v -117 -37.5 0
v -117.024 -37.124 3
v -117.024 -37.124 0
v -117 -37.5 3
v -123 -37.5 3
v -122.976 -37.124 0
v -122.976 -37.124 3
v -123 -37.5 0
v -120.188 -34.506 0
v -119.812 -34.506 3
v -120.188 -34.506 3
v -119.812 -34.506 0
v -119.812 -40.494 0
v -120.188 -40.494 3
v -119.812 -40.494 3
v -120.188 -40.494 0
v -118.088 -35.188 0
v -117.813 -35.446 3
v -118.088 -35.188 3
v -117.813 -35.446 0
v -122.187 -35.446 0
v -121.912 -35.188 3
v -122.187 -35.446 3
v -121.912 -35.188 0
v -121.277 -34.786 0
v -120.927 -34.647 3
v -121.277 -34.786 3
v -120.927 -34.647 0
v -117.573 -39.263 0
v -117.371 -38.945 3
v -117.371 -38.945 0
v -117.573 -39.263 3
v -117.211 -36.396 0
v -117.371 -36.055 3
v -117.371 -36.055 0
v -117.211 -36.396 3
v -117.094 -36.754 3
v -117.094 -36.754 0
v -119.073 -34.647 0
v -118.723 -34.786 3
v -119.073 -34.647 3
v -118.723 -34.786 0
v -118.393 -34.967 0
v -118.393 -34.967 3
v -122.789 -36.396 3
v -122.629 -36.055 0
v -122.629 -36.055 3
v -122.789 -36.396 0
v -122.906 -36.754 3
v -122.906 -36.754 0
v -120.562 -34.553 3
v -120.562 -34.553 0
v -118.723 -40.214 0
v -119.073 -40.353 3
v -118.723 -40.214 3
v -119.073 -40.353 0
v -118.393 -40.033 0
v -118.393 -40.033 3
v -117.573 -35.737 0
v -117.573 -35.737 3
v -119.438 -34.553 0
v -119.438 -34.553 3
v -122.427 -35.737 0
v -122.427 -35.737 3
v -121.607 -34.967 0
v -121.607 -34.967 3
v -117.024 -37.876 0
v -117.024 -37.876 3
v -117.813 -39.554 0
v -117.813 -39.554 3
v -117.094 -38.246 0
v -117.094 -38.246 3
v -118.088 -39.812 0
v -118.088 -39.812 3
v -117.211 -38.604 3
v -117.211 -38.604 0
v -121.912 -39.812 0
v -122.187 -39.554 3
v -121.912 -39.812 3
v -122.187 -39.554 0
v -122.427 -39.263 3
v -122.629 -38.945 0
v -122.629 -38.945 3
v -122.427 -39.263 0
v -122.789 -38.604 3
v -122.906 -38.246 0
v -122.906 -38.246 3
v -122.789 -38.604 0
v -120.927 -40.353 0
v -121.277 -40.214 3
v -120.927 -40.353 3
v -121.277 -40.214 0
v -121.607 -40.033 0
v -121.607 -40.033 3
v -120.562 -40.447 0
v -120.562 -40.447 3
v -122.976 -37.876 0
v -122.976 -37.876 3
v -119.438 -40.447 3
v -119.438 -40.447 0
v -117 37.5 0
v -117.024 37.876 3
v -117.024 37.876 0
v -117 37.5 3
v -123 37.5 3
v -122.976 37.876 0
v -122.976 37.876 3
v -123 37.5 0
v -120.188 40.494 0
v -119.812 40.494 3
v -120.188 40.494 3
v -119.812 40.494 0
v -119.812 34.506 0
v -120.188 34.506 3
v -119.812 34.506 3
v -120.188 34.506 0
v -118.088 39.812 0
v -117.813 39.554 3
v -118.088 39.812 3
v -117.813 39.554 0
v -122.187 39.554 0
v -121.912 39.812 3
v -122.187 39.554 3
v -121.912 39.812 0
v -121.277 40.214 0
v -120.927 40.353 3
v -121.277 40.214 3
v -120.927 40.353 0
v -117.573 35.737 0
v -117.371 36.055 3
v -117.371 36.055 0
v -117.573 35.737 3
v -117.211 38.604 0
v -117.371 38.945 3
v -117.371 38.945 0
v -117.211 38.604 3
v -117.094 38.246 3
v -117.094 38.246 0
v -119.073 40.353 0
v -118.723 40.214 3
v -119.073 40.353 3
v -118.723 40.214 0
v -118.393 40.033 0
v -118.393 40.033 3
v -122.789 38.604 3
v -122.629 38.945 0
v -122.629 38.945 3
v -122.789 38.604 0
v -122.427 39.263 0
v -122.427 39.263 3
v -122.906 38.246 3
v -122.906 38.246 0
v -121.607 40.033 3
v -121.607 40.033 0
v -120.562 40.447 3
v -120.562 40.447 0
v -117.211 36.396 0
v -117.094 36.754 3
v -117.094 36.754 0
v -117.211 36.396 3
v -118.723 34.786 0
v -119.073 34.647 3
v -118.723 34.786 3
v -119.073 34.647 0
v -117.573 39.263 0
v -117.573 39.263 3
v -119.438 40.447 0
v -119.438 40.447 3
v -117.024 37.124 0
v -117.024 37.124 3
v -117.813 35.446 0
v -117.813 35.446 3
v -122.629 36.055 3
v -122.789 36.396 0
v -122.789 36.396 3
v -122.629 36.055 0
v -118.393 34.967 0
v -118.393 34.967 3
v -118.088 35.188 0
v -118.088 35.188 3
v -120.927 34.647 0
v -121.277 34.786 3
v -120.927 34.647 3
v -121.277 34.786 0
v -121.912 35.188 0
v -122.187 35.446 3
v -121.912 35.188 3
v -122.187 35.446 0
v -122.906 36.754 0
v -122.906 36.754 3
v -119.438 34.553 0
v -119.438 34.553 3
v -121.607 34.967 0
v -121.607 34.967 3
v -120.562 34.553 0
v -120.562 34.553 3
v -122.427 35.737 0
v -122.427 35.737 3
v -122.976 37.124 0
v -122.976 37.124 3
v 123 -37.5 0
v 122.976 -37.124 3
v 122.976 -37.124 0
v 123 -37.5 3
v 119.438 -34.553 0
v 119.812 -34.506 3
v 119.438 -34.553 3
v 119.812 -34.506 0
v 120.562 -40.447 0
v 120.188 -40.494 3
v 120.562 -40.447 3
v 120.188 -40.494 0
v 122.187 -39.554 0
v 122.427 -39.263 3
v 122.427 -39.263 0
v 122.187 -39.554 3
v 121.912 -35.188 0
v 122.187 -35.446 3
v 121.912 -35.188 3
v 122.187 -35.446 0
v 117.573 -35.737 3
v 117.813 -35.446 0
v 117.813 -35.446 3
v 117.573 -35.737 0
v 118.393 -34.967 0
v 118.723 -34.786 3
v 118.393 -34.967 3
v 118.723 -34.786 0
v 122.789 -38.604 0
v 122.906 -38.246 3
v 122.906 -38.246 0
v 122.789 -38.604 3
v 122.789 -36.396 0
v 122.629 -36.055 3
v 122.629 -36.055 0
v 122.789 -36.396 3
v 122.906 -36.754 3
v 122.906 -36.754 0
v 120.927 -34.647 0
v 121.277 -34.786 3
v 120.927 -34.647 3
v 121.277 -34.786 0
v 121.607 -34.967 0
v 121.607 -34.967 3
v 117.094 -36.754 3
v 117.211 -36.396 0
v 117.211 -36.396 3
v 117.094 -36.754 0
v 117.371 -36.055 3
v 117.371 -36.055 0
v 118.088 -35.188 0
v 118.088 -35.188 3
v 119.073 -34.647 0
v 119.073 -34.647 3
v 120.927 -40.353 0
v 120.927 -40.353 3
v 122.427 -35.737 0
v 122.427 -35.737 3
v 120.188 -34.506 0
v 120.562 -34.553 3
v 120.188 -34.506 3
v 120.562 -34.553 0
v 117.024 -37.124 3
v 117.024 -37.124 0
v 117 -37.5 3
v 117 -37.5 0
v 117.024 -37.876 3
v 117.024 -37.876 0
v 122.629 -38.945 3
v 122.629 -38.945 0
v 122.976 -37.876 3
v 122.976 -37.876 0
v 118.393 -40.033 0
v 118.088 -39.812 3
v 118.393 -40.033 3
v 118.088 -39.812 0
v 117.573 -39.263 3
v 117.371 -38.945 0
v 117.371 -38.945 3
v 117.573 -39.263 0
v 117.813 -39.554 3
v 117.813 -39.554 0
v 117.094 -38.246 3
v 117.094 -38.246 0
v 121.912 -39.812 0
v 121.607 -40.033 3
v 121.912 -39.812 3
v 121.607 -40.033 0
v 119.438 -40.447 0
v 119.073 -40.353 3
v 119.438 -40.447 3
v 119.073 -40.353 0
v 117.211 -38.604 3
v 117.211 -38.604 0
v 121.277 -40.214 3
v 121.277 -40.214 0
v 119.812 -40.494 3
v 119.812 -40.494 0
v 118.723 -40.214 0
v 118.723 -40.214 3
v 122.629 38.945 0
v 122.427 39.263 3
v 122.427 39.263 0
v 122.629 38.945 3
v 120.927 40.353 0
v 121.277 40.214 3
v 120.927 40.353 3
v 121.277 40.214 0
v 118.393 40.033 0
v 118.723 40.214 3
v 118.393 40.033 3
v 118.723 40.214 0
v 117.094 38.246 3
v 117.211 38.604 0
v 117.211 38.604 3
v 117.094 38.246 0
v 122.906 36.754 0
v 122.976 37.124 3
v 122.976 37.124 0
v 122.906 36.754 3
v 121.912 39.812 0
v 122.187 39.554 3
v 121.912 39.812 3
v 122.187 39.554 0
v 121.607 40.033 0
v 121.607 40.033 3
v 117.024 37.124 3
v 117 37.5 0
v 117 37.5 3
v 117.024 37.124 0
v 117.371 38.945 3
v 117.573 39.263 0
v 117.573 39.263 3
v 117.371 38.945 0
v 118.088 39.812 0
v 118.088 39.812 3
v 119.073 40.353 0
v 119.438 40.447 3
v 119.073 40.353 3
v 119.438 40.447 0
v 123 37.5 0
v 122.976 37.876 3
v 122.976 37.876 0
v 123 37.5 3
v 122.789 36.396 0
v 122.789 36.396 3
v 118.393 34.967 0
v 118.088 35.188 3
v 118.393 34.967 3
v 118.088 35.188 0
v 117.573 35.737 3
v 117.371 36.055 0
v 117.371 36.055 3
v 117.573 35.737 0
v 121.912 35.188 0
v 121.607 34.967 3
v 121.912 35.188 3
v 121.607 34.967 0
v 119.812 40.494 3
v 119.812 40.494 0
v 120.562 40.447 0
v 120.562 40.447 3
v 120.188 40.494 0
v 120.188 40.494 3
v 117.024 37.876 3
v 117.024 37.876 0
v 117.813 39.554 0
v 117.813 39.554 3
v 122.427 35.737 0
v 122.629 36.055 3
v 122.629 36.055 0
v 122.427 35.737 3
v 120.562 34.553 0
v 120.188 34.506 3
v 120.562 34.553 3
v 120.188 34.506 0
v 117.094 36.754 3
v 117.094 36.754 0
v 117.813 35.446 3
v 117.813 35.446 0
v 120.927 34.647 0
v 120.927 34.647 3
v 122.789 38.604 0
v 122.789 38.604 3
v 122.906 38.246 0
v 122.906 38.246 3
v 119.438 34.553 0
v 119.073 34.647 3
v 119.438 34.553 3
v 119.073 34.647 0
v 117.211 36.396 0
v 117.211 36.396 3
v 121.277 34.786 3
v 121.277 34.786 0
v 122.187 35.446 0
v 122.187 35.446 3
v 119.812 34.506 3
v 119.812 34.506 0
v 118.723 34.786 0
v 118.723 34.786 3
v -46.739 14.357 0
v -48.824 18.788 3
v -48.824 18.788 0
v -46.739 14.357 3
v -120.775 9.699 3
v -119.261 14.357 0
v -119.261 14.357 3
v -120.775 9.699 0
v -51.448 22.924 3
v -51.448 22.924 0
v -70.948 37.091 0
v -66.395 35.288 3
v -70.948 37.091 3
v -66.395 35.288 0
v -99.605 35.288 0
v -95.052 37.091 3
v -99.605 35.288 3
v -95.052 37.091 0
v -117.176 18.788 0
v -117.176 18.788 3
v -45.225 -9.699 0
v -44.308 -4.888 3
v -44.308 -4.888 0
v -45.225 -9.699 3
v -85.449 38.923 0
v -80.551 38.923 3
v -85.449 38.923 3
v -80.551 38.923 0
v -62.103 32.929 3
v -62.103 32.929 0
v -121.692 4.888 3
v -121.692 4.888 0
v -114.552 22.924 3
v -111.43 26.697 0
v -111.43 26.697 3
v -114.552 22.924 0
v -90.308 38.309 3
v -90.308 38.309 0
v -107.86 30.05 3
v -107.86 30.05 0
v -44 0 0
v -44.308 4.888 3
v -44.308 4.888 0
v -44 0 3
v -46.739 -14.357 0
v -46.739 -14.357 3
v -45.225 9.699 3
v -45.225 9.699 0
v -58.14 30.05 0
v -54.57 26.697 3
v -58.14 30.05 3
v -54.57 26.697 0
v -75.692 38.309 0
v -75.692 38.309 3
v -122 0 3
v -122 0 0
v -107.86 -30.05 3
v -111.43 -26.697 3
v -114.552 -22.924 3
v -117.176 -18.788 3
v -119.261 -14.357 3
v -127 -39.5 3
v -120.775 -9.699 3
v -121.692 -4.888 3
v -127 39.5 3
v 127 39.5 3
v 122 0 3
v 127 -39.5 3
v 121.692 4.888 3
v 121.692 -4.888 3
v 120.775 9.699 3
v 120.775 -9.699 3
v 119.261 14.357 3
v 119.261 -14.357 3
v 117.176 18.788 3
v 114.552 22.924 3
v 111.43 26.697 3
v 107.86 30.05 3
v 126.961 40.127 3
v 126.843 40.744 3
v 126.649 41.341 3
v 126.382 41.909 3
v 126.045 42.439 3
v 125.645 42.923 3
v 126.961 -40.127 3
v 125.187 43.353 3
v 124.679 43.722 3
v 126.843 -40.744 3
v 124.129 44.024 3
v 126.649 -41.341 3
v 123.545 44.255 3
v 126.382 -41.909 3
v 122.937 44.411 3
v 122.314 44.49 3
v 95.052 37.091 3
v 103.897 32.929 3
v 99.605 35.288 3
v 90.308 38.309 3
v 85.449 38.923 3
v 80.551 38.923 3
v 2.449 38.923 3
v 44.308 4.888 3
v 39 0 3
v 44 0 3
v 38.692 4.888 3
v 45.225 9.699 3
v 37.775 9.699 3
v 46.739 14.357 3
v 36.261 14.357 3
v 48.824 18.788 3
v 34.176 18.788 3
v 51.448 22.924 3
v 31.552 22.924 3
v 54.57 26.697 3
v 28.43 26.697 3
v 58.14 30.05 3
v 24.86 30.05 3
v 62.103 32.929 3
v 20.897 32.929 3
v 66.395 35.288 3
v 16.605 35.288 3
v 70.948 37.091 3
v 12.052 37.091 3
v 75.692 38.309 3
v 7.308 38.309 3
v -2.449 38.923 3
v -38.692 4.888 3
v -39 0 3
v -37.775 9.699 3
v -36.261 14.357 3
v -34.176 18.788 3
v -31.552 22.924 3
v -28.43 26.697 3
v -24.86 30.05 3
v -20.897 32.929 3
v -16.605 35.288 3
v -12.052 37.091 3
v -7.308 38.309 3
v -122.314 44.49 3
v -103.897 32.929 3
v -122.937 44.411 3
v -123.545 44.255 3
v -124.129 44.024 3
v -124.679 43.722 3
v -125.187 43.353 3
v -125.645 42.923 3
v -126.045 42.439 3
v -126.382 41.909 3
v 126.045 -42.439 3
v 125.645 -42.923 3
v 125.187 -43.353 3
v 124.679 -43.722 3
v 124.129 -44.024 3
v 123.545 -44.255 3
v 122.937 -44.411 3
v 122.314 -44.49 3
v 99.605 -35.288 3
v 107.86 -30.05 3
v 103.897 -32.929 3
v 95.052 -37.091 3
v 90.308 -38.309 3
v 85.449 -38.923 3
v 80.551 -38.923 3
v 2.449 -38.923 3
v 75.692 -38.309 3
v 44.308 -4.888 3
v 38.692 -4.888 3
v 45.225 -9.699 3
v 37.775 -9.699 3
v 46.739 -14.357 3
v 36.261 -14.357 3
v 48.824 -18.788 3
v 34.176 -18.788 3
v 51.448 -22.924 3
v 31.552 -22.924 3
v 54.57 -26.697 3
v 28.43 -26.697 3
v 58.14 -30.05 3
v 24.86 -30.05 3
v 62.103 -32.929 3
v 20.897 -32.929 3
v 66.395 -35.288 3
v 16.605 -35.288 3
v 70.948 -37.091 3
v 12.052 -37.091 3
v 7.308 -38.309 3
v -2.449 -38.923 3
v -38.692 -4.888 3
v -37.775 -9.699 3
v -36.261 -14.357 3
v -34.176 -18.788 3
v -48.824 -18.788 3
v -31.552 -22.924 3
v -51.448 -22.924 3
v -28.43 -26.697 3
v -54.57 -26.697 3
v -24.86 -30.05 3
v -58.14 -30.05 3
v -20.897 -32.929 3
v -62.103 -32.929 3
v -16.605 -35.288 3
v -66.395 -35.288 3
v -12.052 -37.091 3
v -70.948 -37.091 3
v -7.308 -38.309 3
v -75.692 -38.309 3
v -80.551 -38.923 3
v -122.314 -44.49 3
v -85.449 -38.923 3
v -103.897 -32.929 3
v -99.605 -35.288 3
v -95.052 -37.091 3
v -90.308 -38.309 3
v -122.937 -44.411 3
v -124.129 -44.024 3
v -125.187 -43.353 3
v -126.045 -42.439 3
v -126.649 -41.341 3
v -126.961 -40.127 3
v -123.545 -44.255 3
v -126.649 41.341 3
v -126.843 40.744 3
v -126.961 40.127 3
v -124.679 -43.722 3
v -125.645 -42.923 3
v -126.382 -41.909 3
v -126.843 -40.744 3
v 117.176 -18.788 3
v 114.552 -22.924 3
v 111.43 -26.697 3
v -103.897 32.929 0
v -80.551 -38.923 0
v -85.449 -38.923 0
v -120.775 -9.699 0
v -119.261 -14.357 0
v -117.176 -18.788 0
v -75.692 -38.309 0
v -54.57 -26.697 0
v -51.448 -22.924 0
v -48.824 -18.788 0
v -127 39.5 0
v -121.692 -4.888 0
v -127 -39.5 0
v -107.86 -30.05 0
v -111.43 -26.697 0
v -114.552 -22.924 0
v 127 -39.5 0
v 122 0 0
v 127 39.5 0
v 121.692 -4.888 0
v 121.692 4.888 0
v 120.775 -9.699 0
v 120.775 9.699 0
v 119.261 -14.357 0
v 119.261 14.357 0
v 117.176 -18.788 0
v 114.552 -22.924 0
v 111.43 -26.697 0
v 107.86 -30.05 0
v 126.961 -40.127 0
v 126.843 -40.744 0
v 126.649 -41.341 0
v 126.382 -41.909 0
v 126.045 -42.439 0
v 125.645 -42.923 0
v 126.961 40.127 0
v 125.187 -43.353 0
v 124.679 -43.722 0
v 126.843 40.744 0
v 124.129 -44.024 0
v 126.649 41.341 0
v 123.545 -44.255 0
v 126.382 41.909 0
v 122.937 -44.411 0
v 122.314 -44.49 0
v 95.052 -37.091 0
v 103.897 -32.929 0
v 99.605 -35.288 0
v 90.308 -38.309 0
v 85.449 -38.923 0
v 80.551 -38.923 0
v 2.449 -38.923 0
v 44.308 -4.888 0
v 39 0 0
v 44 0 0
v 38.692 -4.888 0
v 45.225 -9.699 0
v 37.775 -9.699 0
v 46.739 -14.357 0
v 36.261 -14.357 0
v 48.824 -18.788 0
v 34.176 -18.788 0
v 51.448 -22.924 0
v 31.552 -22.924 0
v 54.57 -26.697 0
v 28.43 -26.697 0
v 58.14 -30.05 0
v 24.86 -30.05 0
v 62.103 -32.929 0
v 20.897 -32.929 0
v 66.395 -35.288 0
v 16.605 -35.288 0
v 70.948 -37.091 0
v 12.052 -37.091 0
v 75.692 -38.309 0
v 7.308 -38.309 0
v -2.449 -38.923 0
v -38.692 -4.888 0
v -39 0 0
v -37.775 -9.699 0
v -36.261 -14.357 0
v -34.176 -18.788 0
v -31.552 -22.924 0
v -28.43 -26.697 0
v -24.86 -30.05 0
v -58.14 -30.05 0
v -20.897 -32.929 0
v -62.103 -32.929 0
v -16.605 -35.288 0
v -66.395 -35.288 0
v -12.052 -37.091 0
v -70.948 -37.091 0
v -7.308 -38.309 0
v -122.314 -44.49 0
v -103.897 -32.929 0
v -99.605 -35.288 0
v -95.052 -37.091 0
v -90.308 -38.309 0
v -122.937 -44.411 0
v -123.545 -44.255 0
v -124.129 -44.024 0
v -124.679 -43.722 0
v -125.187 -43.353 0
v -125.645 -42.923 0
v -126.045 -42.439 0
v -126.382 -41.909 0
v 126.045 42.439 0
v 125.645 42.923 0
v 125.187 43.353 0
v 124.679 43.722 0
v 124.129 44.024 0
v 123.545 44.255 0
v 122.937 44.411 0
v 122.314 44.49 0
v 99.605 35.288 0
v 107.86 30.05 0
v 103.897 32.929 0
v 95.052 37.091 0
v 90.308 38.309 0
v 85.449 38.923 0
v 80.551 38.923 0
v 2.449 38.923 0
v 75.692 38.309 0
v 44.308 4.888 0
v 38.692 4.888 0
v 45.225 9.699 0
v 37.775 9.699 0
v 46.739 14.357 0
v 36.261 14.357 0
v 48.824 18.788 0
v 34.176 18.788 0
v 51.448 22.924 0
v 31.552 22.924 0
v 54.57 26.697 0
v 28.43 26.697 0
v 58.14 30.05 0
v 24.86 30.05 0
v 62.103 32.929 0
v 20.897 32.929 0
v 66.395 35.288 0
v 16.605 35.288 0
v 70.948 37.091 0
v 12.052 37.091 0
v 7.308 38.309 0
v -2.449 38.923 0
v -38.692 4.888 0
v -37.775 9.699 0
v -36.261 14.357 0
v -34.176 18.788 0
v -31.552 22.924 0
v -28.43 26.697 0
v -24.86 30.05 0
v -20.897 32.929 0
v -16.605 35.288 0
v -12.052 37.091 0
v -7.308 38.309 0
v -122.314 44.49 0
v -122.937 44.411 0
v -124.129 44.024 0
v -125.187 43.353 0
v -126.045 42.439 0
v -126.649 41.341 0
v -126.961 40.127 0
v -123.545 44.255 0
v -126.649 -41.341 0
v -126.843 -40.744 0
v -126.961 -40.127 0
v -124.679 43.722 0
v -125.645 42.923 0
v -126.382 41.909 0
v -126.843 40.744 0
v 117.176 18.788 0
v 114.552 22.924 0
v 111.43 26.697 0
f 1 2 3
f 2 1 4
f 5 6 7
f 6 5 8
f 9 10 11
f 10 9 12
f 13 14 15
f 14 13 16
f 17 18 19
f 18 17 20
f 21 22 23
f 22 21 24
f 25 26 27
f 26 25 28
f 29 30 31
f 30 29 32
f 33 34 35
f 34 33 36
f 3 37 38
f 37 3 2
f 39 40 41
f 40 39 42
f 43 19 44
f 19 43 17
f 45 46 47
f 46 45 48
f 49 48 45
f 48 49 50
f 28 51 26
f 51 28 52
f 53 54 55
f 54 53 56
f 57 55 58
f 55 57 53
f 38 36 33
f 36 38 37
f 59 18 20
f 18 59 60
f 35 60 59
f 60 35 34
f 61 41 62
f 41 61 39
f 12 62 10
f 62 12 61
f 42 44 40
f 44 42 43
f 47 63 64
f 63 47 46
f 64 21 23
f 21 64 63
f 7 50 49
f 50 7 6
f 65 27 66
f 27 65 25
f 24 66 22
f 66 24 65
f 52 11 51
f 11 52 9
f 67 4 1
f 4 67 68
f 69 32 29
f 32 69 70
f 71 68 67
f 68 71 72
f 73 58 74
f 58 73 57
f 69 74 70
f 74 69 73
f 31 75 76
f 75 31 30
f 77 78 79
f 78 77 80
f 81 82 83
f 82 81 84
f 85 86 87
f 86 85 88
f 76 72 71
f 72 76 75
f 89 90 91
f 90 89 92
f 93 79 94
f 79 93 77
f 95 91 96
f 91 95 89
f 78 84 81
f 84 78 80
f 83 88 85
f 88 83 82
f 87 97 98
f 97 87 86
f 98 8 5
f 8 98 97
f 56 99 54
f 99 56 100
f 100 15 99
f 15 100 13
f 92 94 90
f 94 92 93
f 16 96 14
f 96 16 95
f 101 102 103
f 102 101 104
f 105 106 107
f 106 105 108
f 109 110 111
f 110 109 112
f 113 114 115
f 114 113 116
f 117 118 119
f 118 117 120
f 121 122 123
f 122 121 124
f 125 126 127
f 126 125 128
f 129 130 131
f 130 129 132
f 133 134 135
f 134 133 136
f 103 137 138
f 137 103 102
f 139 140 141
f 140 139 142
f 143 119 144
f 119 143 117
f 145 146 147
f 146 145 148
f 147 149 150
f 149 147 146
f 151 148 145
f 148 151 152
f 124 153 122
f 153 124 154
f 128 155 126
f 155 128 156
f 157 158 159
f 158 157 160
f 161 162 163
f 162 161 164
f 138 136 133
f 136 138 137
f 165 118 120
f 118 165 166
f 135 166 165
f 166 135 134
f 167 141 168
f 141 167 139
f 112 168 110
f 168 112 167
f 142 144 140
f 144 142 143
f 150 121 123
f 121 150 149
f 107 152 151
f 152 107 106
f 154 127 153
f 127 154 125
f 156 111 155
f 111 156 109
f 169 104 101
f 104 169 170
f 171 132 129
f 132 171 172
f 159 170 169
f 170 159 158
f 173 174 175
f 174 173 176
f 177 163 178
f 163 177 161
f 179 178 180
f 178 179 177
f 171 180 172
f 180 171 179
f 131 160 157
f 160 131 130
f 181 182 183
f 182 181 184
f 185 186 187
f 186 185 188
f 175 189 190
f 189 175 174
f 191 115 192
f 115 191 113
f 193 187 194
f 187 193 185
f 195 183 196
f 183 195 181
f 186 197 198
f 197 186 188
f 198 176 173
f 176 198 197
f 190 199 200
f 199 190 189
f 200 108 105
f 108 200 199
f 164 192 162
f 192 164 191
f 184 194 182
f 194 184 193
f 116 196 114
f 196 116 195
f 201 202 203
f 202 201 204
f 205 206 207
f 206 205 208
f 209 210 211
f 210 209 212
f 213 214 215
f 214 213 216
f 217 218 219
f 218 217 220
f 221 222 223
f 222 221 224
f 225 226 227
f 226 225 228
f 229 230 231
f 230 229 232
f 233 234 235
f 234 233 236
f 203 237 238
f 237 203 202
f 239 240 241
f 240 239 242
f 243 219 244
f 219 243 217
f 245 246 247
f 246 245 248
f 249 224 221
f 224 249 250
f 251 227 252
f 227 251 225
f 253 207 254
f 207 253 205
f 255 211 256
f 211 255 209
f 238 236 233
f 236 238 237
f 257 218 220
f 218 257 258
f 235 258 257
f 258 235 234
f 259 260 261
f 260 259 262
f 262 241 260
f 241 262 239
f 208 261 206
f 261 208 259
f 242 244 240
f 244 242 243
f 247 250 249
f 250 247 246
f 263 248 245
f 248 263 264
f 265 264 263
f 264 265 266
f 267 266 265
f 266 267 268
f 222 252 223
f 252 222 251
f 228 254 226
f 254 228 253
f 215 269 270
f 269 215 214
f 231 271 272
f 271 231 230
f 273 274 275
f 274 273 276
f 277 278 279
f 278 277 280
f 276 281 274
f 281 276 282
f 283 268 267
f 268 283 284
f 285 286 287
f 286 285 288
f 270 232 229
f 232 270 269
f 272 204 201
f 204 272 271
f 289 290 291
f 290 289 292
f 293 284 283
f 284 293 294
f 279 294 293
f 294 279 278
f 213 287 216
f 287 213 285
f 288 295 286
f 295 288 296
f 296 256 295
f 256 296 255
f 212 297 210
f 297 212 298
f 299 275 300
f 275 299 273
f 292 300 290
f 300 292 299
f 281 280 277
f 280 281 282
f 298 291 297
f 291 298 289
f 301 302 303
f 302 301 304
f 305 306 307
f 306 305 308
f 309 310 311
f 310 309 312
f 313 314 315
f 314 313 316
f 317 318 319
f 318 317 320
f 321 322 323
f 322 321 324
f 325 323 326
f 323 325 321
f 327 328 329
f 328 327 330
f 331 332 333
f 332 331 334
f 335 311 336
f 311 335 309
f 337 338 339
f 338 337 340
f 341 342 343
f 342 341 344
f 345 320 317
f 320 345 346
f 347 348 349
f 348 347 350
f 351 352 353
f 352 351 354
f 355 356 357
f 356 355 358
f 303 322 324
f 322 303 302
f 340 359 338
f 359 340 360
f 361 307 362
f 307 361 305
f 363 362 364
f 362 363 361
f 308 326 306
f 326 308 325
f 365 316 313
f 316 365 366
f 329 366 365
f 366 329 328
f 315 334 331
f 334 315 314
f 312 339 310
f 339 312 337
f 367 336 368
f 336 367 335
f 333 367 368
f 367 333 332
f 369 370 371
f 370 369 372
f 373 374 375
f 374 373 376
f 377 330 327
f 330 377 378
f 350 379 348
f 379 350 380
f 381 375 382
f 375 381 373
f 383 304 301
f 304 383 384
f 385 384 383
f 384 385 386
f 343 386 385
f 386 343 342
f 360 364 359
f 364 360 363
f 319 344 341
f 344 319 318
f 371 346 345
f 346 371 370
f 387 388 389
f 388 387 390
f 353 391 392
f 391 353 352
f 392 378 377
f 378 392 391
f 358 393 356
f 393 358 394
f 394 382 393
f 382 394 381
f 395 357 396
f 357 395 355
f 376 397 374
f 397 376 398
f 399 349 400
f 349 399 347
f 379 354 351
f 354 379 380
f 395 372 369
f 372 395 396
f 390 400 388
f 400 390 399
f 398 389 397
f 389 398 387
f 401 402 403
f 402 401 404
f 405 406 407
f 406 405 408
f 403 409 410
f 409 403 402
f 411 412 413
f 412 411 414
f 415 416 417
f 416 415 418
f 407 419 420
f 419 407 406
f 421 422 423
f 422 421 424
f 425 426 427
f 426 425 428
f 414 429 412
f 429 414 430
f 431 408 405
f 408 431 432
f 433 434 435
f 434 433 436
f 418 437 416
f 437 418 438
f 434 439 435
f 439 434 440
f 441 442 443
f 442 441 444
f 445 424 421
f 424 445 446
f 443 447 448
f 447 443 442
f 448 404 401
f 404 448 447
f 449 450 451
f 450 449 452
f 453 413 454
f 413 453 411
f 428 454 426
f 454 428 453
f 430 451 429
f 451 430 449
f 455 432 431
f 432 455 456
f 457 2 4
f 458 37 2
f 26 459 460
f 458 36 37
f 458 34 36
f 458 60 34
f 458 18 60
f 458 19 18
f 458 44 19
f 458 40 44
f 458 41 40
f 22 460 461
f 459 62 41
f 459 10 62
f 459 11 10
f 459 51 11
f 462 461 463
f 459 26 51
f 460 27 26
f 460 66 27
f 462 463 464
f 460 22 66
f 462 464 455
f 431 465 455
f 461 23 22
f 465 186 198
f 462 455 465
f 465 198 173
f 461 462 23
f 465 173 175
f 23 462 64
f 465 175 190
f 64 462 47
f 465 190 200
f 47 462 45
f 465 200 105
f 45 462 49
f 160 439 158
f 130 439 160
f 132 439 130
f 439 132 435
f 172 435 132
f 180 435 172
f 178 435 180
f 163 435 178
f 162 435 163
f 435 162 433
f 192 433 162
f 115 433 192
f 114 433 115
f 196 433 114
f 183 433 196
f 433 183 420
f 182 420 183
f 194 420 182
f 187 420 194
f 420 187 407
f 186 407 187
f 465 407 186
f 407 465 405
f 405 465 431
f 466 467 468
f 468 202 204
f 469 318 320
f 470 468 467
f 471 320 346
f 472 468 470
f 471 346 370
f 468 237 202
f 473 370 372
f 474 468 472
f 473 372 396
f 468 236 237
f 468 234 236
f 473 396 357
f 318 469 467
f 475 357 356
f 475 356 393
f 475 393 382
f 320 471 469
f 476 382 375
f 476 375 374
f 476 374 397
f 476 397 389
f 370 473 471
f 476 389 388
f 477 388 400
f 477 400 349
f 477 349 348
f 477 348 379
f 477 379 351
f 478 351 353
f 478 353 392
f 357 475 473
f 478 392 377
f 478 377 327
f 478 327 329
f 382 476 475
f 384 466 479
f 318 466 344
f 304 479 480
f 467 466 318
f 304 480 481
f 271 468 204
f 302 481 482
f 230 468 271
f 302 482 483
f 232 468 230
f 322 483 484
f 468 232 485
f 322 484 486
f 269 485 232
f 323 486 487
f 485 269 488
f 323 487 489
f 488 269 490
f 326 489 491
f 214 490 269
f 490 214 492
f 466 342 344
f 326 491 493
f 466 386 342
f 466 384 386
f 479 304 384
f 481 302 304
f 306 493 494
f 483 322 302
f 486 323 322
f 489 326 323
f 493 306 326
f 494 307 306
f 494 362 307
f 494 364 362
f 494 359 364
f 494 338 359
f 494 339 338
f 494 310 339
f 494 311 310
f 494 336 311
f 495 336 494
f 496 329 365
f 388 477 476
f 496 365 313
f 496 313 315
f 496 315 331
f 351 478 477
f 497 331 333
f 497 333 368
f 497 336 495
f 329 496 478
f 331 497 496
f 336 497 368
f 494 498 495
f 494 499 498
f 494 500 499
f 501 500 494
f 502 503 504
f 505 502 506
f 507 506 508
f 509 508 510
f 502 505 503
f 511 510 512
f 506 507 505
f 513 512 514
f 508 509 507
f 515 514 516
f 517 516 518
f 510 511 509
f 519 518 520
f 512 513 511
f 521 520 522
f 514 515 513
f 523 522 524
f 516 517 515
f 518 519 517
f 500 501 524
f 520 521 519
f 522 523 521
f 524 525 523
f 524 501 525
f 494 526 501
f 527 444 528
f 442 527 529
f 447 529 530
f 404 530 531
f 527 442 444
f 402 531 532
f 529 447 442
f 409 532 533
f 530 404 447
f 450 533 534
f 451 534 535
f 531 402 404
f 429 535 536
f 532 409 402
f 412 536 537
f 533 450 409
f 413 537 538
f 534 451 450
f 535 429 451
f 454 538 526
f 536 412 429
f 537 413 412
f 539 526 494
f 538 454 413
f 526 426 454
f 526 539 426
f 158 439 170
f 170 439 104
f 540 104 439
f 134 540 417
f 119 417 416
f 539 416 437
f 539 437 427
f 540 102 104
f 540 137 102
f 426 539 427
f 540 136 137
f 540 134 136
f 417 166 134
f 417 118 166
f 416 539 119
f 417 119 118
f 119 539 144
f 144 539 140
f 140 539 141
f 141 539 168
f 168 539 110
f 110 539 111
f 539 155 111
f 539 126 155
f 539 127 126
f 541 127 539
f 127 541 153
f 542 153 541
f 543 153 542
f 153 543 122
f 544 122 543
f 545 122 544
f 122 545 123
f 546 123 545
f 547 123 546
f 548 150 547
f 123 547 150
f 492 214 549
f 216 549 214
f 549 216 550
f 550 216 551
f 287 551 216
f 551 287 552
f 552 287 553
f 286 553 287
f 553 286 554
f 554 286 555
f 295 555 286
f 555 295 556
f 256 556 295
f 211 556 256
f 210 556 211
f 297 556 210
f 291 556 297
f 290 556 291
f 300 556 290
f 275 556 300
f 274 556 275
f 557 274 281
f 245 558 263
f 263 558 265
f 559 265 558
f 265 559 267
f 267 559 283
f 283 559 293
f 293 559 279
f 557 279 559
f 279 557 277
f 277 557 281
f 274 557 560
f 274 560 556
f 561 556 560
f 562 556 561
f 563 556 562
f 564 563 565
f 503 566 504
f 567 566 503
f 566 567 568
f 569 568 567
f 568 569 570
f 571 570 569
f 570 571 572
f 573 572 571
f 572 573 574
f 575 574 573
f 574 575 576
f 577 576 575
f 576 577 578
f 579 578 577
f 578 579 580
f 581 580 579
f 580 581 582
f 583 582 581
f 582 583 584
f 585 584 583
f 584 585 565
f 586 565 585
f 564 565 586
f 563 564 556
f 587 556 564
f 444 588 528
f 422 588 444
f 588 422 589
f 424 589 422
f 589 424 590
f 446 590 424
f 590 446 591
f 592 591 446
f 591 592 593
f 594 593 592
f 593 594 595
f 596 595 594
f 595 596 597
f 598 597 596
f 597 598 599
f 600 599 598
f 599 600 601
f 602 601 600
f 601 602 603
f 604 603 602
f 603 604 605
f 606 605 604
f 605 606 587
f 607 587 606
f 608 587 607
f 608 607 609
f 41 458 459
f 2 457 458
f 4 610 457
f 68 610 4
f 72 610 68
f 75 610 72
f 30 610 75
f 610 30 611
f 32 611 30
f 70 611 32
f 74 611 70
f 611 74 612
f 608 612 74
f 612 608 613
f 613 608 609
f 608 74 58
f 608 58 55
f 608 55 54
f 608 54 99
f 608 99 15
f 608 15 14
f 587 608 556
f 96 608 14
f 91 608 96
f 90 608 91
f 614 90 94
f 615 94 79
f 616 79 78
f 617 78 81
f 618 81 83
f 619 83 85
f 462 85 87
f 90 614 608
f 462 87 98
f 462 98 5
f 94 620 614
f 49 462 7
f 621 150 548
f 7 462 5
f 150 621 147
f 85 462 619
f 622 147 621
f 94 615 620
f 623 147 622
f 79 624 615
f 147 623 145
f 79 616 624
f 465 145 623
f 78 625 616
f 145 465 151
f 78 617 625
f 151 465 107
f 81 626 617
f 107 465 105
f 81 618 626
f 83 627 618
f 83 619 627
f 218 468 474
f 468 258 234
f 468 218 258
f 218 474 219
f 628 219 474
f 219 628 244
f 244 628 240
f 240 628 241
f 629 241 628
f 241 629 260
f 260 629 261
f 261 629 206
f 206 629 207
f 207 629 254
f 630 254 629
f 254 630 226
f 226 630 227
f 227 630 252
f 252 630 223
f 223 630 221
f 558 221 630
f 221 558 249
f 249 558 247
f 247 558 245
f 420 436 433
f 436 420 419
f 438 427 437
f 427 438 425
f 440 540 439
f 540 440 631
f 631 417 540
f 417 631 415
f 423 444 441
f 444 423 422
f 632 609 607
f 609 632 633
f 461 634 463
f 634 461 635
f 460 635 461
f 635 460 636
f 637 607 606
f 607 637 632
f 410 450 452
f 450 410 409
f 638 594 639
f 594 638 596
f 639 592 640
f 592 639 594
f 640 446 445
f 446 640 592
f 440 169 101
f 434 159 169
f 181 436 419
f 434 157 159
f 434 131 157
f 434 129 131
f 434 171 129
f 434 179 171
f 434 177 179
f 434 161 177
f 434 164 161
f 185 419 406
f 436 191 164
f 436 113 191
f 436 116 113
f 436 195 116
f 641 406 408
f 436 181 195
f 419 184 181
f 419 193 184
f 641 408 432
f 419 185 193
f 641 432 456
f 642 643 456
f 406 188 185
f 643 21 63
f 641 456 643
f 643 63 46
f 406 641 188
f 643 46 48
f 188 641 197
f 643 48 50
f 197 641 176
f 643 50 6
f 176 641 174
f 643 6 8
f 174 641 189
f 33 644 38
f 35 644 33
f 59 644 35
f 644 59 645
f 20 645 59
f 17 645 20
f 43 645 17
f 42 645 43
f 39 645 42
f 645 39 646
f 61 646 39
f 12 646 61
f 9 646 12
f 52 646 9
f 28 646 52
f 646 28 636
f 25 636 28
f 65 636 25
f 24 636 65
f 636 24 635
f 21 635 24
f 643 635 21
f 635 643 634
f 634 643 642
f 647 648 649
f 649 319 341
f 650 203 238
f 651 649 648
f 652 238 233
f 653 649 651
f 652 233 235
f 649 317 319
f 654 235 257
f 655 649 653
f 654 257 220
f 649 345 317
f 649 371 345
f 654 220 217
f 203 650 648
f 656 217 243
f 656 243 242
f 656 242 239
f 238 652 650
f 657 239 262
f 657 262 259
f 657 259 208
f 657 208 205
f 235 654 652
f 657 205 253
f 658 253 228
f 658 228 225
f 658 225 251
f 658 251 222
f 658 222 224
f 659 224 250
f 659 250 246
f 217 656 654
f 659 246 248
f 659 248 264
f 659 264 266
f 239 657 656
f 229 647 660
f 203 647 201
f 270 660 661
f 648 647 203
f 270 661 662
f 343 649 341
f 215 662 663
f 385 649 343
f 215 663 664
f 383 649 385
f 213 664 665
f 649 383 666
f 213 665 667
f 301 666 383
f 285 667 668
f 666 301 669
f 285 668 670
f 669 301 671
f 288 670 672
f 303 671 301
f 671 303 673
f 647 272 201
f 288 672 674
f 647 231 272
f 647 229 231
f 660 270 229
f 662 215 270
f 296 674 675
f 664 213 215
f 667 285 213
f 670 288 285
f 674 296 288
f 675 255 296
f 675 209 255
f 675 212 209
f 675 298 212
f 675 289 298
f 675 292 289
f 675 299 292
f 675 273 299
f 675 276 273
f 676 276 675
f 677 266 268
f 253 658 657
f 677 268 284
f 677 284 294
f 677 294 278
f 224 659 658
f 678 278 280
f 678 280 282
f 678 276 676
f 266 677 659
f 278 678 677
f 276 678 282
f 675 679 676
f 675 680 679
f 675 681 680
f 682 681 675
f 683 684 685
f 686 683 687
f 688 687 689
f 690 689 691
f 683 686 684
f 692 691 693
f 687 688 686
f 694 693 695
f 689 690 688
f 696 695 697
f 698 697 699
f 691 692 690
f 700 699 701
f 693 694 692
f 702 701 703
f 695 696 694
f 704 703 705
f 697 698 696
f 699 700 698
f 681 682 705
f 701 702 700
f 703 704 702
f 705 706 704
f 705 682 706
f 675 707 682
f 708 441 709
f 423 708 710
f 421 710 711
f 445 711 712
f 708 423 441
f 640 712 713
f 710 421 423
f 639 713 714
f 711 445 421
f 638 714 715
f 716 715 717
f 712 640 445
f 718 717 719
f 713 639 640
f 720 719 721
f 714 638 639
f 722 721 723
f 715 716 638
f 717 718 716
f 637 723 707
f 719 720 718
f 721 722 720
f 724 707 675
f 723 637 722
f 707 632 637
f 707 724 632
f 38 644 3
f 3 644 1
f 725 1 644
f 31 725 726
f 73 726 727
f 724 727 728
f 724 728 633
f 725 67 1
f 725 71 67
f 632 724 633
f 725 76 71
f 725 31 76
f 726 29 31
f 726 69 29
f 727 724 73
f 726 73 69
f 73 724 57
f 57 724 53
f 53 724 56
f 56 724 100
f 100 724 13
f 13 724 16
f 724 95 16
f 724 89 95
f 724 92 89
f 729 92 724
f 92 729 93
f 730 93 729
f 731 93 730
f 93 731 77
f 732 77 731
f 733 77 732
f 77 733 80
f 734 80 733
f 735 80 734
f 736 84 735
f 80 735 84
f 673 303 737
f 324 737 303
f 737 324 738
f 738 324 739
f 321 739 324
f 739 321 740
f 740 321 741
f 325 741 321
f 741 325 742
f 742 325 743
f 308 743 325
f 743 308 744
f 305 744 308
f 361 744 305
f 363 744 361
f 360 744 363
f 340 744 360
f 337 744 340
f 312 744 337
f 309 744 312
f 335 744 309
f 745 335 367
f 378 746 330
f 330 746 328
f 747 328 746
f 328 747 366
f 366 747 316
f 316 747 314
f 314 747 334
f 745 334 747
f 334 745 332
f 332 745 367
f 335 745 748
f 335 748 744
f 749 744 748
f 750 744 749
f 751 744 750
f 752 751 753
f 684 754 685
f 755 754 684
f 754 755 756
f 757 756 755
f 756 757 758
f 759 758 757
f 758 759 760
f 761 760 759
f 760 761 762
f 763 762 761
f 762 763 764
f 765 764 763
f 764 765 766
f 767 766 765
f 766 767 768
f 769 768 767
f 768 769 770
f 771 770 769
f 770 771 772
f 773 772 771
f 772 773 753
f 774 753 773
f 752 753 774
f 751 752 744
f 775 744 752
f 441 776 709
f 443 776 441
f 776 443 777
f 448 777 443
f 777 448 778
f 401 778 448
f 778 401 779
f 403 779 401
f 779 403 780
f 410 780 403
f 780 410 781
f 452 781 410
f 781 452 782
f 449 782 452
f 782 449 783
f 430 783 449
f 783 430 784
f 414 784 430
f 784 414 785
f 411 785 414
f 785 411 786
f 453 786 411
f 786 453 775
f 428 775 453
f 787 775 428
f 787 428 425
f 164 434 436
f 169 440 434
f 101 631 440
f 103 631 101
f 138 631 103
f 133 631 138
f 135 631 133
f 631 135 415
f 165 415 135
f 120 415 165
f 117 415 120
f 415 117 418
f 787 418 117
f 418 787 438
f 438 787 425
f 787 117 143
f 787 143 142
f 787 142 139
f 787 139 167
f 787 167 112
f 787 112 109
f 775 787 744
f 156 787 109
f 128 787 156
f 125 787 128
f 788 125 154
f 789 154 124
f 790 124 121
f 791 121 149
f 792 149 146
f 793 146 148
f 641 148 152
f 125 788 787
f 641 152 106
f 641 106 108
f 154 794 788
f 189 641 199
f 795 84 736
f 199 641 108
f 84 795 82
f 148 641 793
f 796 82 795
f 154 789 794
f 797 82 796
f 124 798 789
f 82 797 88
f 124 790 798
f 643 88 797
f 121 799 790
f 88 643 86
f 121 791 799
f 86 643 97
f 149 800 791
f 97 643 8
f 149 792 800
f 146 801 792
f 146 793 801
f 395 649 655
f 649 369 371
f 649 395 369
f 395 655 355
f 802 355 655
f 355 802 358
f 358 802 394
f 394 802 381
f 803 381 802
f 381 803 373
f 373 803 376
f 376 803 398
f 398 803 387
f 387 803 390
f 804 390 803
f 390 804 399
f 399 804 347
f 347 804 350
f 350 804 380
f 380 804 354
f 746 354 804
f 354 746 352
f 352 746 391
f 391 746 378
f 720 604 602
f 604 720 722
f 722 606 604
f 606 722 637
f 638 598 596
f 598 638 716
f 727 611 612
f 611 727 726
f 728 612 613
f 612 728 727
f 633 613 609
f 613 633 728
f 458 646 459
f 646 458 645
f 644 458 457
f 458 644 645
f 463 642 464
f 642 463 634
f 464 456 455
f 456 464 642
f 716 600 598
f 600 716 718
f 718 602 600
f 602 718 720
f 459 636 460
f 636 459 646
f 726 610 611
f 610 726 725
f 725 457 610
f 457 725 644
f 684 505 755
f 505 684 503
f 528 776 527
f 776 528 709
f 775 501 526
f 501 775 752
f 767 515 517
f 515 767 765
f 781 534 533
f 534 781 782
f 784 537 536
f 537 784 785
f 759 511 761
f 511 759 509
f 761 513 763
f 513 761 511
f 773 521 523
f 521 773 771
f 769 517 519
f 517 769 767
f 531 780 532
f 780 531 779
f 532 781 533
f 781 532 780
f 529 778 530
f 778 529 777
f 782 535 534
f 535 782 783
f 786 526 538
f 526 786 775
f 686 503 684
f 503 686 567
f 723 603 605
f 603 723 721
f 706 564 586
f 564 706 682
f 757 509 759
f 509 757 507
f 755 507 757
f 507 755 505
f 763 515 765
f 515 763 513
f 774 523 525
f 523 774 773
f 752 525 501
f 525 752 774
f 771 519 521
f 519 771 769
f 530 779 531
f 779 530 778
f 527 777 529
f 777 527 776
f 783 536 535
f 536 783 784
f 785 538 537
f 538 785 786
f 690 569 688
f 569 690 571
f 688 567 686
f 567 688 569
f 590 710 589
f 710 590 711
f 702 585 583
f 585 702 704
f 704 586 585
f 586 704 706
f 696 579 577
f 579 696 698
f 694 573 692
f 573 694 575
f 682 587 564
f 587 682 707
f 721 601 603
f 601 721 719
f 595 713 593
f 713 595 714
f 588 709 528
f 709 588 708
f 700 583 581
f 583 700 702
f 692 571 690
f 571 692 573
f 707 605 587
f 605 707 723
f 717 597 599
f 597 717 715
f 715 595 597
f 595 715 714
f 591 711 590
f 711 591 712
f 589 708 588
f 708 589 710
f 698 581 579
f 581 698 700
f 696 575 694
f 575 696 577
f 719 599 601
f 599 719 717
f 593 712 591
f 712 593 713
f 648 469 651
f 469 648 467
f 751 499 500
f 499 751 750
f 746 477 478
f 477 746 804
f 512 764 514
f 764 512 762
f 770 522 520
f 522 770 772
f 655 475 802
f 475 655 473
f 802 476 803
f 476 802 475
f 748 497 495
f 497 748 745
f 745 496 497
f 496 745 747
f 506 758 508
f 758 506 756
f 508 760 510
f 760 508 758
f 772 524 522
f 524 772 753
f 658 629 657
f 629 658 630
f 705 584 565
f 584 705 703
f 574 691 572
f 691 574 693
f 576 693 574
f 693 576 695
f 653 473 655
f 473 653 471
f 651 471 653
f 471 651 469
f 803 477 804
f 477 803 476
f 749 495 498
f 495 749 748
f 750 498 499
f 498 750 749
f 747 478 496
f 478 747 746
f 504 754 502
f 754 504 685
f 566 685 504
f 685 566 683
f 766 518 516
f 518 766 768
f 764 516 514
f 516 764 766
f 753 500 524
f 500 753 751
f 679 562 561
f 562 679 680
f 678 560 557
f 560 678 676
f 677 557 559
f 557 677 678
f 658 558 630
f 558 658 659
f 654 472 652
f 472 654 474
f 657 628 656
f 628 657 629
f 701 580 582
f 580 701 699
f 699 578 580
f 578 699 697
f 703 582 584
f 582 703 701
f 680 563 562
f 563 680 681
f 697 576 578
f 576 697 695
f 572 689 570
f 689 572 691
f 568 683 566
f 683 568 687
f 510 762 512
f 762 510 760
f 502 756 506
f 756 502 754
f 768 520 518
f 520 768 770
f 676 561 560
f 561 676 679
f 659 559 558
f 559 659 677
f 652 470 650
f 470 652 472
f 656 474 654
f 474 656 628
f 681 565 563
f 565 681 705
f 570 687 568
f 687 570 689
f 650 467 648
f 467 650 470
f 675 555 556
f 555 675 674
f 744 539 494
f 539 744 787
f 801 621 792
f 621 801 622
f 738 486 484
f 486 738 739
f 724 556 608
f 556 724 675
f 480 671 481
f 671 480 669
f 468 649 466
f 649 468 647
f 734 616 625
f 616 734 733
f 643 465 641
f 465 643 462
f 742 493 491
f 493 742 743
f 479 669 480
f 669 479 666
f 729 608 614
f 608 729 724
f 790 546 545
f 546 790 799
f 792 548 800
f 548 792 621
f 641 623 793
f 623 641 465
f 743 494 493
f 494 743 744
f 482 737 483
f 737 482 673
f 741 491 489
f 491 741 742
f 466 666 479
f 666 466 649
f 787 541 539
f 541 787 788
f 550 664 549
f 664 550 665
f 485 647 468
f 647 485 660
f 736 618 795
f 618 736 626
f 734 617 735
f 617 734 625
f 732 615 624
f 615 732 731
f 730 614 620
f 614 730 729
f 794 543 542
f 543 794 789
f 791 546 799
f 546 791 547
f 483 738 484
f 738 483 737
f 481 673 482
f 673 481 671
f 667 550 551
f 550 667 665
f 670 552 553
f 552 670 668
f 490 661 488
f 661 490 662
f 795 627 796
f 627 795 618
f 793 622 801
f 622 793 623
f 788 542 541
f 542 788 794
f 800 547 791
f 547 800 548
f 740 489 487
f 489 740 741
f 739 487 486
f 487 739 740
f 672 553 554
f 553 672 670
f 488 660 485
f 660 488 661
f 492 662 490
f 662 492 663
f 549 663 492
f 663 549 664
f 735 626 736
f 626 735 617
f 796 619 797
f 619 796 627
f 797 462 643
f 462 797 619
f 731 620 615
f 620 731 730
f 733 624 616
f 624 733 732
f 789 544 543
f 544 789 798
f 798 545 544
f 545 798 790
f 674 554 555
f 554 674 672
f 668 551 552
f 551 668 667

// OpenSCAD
$fn = 50;


difference() {
	union() {
		hull() {
			translate(v = [-122.0000000000, 39.5000000000, 0]) {
				cylinder(h = 3, r = 5);
			}
			translate(v = [122.0000000000, 39.5000000000, 0]) {
				cylinder(h = 3, r = 5);
			}
			translate(v = [-122.0000000000, -39.5000000000, 0]) {
				cylinder(h = 3, r = 5);
			}
			translate(v = [122.0000000000, -39.5000000000, 0]) {
				cylinder(h = 3, r = 5);
			}
		}
	}
	union() {
		#translate(v = [-120.0000000000, -37.5000000000, -100.0000000000]) {
			cylinder(h = 200, r = 3.0000000000);
		}
		#translate(v = [-120.0000000000, 37.5000000000, -100.0000000000]) {
			cylinder(h = 200, r = 3.0000000000);
		}
		#translate(v = [120.0000000000, -37.5000000000, -100.0000000000]) {
			cylinder(h = 200, r = 3.0000000000);
		}
		#translate(v = [120.0000000000, 37.5000000000, -100.0000000000]) {
			cylinder(h = 200, r = 3.0000000000);
		}
		#translate(v = [-83.0000000000, 0, 0]) {
			cylinder(h = 3, r = 39.0000000000);
		}
		#cylinder(h = 3, r = 39.0000000000);
		#translate(v = [83.0000000000, 0, 0]) {
			cylinder(h = 3, r = 39.0000000000);
		}
	}
}
